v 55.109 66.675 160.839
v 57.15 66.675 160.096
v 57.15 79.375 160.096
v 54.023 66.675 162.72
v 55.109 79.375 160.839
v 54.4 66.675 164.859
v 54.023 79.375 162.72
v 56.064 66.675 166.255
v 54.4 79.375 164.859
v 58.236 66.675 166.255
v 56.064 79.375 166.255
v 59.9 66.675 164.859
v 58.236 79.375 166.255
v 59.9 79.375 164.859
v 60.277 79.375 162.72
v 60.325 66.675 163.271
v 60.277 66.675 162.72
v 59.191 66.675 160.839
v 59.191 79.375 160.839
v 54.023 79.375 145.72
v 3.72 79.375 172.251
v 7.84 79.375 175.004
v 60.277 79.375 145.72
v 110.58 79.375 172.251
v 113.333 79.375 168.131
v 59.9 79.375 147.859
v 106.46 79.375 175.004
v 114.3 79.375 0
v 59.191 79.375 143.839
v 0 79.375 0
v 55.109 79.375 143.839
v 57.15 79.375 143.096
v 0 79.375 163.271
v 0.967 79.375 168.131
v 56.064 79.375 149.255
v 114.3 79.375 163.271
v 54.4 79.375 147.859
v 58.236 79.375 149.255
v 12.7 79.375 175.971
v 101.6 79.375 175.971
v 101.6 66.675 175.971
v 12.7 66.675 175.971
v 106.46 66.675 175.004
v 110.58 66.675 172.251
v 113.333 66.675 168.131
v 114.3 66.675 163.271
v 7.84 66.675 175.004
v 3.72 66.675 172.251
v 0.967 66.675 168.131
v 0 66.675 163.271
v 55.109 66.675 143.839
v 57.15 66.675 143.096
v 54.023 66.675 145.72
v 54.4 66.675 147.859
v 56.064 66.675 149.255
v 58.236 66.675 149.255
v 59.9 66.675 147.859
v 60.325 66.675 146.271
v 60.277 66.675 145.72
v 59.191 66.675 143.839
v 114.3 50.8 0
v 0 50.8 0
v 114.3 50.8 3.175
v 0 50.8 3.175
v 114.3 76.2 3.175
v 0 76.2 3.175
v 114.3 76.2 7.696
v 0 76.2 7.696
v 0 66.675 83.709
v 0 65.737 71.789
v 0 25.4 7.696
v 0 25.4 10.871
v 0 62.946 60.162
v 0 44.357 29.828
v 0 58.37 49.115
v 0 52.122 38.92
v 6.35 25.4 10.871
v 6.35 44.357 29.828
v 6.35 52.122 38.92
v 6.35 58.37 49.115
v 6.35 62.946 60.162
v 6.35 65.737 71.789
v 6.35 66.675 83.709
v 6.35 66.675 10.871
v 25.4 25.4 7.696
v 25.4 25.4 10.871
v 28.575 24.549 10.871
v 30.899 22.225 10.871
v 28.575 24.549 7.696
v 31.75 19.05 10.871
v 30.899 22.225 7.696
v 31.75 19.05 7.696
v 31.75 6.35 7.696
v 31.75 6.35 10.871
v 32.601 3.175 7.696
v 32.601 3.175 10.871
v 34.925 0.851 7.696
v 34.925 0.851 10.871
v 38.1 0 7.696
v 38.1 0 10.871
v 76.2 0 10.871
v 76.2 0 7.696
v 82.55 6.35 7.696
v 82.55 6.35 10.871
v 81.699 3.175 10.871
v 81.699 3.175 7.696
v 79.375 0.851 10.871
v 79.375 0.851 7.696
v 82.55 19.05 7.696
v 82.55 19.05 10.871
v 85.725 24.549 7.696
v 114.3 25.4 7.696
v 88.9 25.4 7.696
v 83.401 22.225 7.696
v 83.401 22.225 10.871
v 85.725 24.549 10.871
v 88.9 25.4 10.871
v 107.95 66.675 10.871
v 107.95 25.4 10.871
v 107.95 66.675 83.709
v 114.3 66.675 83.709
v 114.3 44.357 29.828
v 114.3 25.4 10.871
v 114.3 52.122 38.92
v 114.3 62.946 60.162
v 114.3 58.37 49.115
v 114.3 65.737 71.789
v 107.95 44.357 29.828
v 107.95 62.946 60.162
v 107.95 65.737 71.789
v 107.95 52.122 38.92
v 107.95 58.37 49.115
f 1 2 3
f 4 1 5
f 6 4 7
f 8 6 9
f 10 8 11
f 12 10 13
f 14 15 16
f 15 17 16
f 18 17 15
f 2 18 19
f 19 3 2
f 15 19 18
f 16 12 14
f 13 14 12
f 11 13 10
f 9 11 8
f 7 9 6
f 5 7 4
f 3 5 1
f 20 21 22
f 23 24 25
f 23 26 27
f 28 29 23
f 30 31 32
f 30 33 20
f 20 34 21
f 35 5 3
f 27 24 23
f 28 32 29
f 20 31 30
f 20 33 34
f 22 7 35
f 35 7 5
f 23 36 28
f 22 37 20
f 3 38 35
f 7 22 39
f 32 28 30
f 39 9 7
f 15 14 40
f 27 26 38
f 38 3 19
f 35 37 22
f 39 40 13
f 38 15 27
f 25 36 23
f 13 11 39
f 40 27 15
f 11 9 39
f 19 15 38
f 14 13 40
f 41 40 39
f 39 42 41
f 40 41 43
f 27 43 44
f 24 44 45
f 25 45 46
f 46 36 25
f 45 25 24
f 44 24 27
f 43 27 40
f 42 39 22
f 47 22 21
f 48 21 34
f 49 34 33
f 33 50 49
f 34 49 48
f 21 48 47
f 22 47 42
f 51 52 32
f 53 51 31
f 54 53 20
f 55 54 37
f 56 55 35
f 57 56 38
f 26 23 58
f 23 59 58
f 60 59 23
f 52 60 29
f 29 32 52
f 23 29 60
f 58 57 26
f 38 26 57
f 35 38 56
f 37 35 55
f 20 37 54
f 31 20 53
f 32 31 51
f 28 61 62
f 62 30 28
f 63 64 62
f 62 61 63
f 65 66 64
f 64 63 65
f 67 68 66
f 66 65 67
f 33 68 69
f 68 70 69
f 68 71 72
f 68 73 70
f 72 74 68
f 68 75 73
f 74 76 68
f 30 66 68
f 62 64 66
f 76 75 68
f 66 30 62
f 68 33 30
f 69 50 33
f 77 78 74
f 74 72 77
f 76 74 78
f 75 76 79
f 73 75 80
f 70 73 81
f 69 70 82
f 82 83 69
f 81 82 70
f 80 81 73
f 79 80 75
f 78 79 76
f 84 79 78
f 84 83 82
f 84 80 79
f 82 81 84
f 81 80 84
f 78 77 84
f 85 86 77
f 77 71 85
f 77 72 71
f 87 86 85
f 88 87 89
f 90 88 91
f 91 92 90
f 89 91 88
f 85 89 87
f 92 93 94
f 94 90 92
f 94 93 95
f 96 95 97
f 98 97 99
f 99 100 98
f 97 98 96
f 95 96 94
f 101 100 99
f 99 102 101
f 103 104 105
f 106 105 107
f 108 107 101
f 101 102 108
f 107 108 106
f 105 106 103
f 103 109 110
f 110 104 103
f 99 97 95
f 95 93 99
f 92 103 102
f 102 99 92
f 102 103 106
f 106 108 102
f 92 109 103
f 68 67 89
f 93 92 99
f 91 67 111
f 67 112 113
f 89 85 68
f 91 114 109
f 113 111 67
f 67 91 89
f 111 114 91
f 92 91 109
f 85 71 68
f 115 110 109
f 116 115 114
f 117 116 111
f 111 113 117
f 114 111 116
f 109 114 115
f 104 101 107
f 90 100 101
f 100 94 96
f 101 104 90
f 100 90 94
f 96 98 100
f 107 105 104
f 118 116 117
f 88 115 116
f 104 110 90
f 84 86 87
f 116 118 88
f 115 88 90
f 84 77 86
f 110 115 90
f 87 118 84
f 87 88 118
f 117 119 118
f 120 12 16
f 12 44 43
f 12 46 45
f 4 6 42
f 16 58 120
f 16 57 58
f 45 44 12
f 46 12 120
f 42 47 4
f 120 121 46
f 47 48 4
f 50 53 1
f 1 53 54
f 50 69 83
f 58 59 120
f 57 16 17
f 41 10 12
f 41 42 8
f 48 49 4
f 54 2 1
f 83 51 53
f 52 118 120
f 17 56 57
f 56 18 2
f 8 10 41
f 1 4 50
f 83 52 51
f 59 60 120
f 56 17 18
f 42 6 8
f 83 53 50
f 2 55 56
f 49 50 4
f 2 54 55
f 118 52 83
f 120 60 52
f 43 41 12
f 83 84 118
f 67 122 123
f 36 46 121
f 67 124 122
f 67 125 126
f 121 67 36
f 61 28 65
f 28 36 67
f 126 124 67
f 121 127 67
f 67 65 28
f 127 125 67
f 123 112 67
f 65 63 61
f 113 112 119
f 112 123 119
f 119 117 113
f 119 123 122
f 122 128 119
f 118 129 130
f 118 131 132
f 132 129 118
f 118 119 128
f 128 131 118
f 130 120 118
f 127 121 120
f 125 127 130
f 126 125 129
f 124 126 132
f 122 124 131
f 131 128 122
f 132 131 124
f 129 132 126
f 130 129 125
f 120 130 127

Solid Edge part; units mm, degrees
sketch "Sketch1" plane through (0, 0, 0) normal (1, 0, 0) x (0, 1, 0)
  line L0 (79.375, 10.8712) -> (0, 10.8712)
  line L1 (0, 10.8712) -> (0, 0)
  line L2 (0, 0) -> (79.375, 0)
  line L3 (79.375, 0) -> (79.375, 10.8712)
extrude "Protrusion1" add sketch "Sketch1" along normal blind 114.3
shell "Thinwall_1" thickness 3.175 removed faces 3 at (114.3, 65.3521, 1.7032) at (94.107, 0, 9.168) at (0, 65.3521, 1.7032)
sketch "Sketch2" plane through (0, 0, 0) normal (1, 0, 0) x (0, 1, 0)
  line L0 (79.375, 175.9712) -> (79.375, 10.8712)
  line L1 (79.375, 10.8712) -> (66.675, 10.8712)
  line L2 (66.675, 10.8712) -> (66.675, 175.9712)
  line L3 (66.675, 175.9712) -> (79.375, 175.9712)
extrude "Protrusion2" add sketch "Sketch2" along normal up to vertex (114.3 mm away)
hole "Hole_1" at (57.15, 66.675, 163.2712) direction (0, 1, 0) diameter 6.35 end up to next
hole "Hole1" at (57.15, 66.675, 146.2712) direction (0, 1, 0) diameter 6.35 end up to next
fillet "Round_3" radius 12.7 2 edges at (114.3, 73.025, 175.9712) (0, 73.025, 175.9712)
sketch "Sketch3" plane through (57.15, 39.6875, 0) normal (0, 0, -1) x (1, 0, 0)
  line L0 (57.15, -11.1125) -> (-57.15, -11.1125)
  line L1 (-57.15, -11.1125) -> (-57.15, 39.6875)
  line L2 (-57.15, 39.6875) -> (57.15, 39.6875)
  line L3 (57.15, 39.6875) -> (57.15, -11.1125)
extrude "Cutout1" cut sketch "Sketch3" against normal up to next
sketch "Sketch4" plane through (57.15, 39.6875, 0) normal (0, 0, -1) x (1, 0, 0)
  line L0 (25.4, 14.2875) -> (57.15, 14.2875)
  line L1 (57.15, 14.2875) -> (57.15, 39.6875)
  line L2 (57.15, 39.6875) -> (25.4, 39.6875)
  line L3 (25.4, 39.6875) -> (25.4, 14.2875)
  line L4 (-25.4, 39.6875) -> (-25.4, 14.2875)
  line L5 (-25.4, 14.2875) -> (-57.15, 14.2875)
  line L6 (-57.15, 14.2875) -> (-57.15, 39.6875)
  line L7 (-57.15, 39.6875) -> (-25.4, 39.6875)
  dimension "D1" = 50.8
  dimension "D2" = 25.4
  dimension "D3" = 25.4
  dimension "D4" = 31.75
extrude "Cutout2" cut sketch "Sketch4" against normal up to next
fillet "Round_4" radius 6.35 4 edges at (31.75, 25.4, 9.2837) (82.55, 25.4, 9.2837) (82.55, 0, 9.2837) (31.75, 0, 9.2837)
sketch "Sketch5" plane through (114.3, 52.3875, 81.6356) normal (1, 0, 0) x (0, 1, 0)
  line L0 (-26.9875, -70.7644) -> (14.2875, -29.4894)
  line L1 (14.2875, -29.4894) -> (14.2875, -70.7644)
  line L2 (14.2875, -70.7644) -> (-26.9875, -70.7644)
extrude "ExtrudedProtrusion_5" add sketch "Sketch5" against normal blind 6.35
fillet "Round_5" radius 76.2 1 edges at (111.125, 66.675, 52.1462)
mirror "Mirror1" about plane through (57.15, 0, 0) normal (-1, 0, 0) of "ExtrudedProtrusion_5"
fillet "Round1" radius 76.2 1 edges at (3.175, 66.675, 52.1462)
properties material "ABS Plastic, medium impact"
